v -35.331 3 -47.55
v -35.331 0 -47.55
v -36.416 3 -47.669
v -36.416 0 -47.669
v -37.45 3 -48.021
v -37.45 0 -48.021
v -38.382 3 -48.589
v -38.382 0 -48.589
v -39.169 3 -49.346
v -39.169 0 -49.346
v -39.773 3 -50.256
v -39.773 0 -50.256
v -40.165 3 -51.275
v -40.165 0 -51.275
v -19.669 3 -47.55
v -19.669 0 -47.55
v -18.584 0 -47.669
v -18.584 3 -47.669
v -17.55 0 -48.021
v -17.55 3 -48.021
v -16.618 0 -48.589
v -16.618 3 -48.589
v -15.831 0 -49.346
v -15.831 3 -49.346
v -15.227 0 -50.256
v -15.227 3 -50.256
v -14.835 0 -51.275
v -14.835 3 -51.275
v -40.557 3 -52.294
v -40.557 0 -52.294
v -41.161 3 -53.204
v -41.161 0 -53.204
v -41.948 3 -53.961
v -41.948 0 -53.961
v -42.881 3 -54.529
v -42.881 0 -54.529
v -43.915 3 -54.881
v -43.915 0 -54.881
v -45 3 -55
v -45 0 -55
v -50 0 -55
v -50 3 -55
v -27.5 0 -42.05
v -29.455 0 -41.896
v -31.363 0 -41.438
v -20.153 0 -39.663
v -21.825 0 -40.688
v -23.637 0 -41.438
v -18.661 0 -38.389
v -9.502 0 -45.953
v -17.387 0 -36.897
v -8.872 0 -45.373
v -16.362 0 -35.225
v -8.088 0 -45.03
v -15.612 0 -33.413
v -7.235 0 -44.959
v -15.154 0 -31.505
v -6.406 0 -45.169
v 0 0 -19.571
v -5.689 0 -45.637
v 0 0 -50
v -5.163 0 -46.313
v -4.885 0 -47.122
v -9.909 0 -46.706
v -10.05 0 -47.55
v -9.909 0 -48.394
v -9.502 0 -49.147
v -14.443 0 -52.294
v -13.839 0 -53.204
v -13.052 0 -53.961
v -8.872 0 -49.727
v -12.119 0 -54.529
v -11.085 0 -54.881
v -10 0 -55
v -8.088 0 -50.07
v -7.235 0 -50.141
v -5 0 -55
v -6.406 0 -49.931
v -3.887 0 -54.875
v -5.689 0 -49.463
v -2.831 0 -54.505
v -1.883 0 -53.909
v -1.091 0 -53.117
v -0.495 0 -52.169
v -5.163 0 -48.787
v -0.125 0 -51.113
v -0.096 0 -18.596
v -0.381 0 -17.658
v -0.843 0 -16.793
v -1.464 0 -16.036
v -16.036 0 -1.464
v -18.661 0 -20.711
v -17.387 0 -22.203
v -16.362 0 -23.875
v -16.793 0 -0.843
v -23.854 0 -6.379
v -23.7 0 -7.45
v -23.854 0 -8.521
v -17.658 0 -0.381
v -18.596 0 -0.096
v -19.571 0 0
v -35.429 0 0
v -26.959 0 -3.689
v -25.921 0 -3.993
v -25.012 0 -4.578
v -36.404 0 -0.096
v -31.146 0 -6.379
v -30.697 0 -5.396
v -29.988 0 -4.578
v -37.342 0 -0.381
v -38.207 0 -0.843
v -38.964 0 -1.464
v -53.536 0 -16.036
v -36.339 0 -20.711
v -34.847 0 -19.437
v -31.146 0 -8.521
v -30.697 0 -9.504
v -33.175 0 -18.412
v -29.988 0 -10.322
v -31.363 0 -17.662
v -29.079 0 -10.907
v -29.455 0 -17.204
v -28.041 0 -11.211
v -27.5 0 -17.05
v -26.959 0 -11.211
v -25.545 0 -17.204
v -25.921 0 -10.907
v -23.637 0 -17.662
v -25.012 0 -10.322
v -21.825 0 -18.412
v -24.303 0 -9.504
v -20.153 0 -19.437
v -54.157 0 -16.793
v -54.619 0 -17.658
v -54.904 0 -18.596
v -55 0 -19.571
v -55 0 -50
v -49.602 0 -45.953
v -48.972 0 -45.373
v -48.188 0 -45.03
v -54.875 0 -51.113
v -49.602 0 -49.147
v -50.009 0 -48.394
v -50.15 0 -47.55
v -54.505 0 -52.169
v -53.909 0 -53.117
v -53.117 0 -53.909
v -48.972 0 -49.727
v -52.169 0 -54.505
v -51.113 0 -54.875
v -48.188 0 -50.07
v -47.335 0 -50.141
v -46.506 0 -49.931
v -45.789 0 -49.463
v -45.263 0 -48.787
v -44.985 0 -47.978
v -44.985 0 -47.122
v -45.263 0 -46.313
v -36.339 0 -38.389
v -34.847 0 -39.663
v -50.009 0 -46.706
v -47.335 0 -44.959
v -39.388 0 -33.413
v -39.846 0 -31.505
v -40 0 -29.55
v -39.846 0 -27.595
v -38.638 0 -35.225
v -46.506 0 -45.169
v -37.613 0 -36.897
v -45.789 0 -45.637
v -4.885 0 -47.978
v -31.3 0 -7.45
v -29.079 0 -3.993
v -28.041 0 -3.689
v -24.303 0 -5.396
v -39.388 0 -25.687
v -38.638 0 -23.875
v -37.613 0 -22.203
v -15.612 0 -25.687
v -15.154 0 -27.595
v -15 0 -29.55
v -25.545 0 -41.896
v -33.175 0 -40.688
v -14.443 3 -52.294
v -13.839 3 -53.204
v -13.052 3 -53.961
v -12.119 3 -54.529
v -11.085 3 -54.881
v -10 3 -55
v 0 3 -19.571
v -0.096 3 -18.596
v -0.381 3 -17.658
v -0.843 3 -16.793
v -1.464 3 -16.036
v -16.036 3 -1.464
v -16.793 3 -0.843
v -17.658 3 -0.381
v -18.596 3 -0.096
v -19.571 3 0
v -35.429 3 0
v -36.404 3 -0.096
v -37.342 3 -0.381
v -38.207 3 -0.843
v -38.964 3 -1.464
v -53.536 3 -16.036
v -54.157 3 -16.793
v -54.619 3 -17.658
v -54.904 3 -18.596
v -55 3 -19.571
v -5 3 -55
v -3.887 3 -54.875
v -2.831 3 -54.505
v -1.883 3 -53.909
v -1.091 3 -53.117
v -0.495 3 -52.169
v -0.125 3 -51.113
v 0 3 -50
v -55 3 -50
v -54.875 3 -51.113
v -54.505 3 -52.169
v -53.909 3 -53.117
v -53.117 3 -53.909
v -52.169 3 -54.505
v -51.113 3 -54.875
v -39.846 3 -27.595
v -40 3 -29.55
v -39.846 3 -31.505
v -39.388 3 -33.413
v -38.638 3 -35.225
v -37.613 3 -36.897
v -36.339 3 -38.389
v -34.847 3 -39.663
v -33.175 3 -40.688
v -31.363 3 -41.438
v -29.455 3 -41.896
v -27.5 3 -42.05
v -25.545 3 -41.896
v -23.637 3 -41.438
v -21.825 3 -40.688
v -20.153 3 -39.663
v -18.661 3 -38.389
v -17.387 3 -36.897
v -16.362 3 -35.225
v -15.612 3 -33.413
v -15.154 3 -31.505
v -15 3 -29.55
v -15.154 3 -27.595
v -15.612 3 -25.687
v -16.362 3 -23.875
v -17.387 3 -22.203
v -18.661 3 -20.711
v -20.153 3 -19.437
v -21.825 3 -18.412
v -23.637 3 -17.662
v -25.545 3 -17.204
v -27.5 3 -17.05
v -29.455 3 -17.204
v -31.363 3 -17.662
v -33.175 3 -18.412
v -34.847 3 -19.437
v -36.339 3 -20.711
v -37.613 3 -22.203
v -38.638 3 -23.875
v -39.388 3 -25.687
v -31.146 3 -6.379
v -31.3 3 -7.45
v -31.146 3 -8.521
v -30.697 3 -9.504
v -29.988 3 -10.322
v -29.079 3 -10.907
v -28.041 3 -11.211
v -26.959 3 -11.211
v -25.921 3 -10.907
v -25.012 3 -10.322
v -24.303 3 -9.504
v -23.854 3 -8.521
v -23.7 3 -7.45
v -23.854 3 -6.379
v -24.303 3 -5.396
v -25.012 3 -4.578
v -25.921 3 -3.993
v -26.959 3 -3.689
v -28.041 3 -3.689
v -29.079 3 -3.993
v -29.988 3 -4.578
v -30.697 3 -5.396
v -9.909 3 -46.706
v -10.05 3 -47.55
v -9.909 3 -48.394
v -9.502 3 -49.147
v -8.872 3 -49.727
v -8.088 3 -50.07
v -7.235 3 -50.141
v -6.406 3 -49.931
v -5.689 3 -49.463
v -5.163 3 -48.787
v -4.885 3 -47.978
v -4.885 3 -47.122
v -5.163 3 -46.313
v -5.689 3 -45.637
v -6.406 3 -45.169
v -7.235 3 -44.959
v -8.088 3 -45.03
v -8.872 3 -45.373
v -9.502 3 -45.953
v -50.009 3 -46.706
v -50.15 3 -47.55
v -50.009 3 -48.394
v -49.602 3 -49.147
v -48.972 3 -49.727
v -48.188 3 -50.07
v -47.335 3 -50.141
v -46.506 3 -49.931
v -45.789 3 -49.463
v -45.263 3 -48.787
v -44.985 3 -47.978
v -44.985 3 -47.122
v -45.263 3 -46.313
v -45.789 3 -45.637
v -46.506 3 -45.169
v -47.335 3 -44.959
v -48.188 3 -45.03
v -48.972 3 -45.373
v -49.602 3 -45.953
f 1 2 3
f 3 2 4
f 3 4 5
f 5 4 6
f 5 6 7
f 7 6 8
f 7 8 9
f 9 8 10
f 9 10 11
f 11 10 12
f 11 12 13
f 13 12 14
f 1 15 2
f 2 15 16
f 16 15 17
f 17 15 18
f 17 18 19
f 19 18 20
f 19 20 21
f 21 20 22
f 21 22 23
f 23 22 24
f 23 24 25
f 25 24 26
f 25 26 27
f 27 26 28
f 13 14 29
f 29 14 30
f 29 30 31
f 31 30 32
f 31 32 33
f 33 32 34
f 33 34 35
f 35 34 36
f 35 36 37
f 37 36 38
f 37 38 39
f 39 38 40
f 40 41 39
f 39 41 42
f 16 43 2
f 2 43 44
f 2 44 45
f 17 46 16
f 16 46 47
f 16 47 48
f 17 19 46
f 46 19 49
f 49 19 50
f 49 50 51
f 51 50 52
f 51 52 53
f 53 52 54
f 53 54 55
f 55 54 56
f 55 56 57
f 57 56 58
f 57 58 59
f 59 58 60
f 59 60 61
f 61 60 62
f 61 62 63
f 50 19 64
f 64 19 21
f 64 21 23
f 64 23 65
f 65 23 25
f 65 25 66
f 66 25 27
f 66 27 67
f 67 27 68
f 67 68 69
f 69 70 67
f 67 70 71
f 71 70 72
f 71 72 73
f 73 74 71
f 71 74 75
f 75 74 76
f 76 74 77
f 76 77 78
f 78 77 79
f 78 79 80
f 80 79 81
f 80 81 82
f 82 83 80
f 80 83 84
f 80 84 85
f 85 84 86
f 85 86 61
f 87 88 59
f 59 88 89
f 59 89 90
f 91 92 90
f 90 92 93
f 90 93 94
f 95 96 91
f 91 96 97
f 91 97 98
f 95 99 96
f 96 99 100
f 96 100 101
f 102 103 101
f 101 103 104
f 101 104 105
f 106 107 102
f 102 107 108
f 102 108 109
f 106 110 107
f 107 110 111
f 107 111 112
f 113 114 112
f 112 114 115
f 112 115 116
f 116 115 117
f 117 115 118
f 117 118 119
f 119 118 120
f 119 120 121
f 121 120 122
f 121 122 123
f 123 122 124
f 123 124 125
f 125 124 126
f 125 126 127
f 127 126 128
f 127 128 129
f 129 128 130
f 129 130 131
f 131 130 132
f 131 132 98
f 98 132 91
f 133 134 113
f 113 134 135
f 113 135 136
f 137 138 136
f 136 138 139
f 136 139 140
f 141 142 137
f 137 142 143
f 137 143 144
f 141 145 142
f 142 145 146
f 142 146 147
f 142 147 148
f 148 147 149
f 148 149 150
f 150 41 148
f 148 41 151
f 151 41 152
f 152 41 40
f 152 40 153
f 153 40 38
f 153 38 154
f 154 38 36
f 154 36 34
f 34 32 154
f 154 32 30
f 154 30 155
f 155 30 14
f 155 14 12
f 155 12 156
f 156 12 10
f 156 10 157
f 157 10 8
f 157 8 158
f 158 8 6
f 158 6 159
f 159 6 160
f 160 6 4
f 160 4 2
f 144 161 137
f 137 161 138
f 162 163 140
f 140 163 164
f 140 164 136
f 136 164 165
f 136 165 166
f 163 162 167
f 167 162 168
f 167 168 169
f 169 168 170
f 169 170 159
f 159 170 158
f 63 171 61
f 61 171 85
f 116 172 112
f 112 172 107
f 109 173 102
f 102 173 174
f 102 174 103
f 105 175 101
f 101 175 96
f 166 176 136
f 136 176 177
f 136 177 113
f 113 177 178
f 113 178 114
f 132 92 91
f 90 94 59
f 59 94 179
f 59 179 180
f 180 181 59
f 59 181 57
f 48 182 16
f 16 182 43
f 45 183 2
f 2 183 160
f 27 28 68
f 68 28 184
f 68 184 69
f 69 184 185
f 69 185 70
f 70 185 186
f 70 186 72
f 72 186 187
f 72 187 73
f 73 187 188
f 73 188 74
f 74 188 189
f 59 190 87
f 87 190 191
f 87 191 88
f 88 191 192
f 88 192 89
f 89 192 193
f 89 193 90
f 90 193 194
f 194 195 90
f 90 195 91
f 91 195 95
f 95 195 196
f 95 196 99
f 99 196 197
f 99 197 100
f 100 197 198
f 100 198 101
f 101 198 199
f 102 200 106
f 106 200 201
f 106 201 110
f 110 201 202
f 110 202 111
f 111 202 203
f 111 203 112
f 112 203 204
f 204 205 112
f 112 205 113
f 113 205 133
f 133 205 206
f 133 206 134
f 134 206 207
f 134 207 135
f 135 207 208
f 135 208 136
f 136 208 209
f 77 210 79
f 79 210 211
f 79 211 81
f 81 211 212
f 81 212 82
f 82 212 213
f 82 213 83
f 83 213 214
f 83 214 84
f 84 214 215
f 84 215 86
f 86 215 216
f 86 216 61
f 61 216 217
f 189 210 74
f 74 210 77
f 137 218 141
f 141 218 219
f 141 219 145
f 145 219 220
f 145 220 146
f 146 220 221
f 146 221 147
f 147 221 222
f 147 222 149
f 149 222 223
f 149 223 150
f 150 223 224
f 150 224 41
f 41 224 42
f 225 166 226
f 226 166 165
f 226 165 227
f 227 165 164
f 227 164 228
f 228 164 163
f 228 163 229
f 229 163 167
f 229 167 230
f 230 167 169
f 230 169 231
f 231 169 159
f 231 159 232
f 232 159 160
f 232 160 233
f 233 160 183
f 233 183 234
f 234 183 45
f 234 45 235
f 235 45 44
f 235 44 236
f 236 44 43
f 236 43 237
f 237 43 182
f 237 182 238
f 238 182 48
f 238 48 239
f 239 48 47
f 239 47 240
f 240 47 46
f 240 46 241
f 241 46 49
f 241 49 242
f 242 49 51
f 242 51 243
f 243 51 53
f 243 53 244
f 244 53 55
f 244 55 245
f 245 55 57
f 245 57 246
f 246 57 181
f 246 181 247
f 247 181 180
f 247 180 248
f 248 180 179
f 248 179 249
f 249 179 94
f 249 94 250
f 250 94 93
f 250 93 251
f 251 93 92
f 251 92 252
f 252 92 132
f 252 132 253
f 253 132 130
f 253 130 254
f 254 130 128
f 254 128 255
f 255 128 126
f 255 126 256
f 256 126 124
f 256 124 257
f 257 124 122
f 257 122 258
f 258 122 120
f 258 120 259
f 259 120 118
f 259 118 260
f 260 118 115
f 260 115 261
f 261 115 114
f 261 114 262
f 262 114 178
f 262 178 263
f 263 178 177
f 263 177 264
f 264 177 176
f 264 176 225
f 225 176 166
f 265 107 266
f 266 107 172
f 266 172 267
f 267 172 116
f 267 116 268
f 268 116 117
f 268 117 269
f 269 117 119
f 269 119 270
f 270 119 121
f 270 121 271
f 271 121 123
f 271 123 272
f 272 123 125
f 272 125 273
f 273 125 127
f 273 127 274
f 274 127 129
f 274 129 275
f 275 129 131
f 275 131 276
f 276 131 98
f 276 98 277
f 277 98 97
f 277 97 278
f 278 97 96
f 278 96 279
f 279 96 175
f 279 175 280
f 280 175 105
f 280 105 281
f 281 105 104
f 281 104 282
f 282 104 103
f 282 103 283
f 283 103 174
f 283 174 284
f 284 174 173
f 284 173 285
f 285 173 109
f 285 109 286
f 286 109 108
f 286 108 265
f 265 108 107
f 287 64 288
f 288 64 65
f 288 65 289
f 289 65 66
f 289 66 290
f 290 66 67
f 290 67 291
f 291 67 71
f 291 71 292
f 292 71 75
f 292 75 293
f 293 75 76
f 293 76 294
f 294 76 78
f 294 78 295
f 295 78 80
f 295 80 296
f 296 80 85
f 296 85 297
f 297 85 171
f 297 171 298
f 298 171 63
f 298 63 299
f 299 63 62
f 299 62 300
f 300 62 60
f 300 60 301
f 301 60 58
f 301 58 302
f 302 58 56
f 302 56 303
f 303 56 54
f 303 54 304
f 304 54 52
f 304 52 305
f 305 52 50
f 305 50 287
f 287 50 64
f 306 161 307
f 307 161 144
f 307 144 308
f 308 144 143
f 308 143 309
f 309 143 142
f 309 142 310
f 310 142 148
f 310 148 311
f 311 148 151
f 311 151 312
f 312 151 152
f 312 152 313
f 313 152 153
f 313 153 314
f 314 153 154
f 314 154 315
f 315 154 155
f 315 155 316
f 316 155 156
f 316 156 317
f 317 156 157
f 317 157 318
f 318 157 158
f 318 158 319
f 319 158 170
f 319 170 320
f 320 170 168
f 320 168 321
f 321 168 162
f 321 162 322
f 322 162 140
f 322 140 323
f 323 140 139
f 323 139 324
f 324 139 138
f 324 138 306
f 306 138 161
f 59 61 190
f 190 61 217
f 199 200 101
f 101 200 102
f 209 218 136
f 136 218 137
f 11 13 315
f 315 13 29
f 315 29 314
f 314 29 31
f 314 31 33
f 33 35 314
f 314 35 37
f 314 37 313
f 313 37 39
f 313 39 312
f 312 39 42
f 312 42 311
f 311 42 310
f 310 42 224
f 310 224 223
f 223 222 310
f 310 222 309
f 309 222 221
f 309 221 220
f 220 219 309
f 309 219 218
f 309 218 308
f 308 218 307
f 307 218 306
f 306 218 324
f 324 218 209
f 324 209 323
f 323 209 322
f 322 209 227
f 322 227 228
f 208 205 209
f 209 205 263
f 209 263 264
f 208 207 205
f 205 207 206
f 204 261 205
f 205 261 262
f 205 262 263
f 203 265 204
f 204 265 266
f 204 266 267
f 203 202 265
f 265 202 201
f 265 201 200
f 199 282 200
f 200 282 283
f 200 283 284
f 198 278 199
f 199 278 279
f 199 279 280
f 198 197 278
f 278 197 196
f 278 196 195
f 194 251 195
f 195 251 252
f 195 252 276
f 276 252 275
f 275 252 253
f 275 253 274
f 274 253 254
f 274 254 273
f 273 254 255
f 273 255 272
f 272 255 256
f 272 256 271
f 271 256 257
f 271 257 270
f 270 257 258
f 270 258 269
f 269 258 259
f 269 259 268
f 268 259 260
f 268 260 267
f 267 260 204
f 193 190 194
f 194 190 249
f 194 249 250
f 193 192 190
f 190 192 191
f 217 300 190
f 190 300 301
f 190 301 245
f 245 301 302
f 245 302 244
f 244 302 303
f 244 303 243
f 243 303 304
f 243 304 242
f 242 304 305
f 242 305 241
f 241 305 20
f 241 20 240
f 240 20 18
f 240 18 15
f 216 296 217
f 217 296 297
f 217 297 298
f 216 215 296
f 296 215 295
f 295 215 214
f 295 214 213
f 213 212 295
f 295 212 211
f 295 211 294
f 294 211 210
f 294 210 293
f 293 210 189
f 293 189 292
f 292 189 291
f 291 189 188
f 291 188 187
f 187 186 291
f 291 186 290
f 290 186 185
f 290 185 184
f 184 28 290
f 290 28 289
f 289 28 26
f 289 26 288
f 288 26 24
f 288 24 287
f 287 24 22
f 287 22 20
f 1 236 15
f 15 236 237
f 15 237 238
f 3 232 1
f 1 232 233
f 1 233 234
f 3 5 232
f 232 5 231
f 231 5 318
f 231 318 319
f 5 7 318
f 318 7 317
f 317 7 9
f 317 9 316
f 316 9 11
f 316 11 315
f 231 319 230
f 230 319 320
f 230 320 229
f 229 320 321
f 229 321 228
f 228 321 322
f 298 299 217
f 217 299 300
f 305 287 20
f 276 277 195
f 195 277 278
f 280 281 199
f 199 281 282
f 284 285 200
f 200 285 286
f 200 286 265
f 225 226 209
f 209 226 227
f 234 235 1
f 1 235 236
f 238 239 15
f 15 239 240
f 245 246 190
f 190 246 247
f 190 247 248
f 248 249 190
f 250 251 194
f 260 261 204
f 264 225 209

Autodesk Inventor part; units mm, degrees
ref_plane "YZ Plane" through (0, 0, 0) normal (1, 0, 0) x (0, 1, 0)
ref_plane "XZ Plane" through (0, 0, 0) normal (0, 1, 0) x (-1, 0, 0)
ref_plane "XY Plane" through (0, 0, 0) normal (0, 0, 1) x (1, 0, 0)
sketch "Sketch1" plane through (0, 0, 0) normal (0, 1, 0) x (-1, 0, 0)
  line L0 (0, 0) -> (55, 0)
  line L1 (55, 0) -> (55, -55)
  line L2 (55, -55) -> (0, -55)
  line L3 (0, -55) -> (0, 0)
  line L4 (47.55, -7.45) -> (7.45, -7.45) construction
  line L5 (7.45, -7.45) -> (7.45, -47.55) construction
  line L6 (7.45, -47.55) -> (47.55, -47.55) construction
  line L7 (47.55, -47.55) -> (47.55, -7.45) construction
  circle A0 centre (47.55, -47.55) radius 2.6
  circle A1 centre (7.45, -47.55) radius 2.6
  circle A2 centre (27.5, -7.45) radius 3.8
  line L8 (0, -17.5) -> (17.5, 0)
  line L9 (37.5, 0) -> (55, -17.5)
  line L10 (17.5, -55) -> (37.5, -55)
  line L11 (15, -55) -> (40, -55)
  line L12 (40, -55) -> (40, -47.55)
  line L13 (40, -47.55) -> (15, -47.55)
  line L14 (15, -47.55) -> (15, -55)
  circle A3 centre (27.5, -29.55) radius 12.5
  dimension "d0" = 55
  dimension "d1" = 55
  dimension "d2" = 40.1
  dimension "d3" = 40.1
  dimension "d6" = 5.2
  dimension "d7" = 5.2
  dimension "d8" = 7.45
  dimension "d9" = 7.45
  dimension "d14" = 7.6
  dimension "d55" = 20
  dimension "d56" = 10
  dimension "d87" = 15
  dimension "d88" = 15
  dimension "d89" = 25
  dimension "d90" = 18
  dimension "d91" = 20.05
extrude "Extrusion1" add sketch "Sketch1" along normal blind 3 contours L0 L9 L1 L2 L12 L13 L14 L3 L8
fillet "Fillet1" radius 5 10 edges at (-55, 1.5, -55) (0, 1.5, -55) (-55, 1.5, -17.5) (-37.5, 1.5, 0) (-17.5, 1.5, 0) (0, 1.5, -17.5) (-15, 1.5, -55) (-40, 1.5, -55) (-15, 1.5, -47.55) (-40, 1.5, -47.55)
equation "\"d1\" = d0"
equation "\"d3\" = d2"
equation "\"d8\" = -0.5 * d2 + 0.5 * d0"
equation "\"d9\" = -0.5 * d3 + 0.5 * d1"
equation "\"d88\" = d87"
equation "\"d91\" = 0.5 * d2"
properties part number "Gantry Plate" material "PC/ABS Plastic"
